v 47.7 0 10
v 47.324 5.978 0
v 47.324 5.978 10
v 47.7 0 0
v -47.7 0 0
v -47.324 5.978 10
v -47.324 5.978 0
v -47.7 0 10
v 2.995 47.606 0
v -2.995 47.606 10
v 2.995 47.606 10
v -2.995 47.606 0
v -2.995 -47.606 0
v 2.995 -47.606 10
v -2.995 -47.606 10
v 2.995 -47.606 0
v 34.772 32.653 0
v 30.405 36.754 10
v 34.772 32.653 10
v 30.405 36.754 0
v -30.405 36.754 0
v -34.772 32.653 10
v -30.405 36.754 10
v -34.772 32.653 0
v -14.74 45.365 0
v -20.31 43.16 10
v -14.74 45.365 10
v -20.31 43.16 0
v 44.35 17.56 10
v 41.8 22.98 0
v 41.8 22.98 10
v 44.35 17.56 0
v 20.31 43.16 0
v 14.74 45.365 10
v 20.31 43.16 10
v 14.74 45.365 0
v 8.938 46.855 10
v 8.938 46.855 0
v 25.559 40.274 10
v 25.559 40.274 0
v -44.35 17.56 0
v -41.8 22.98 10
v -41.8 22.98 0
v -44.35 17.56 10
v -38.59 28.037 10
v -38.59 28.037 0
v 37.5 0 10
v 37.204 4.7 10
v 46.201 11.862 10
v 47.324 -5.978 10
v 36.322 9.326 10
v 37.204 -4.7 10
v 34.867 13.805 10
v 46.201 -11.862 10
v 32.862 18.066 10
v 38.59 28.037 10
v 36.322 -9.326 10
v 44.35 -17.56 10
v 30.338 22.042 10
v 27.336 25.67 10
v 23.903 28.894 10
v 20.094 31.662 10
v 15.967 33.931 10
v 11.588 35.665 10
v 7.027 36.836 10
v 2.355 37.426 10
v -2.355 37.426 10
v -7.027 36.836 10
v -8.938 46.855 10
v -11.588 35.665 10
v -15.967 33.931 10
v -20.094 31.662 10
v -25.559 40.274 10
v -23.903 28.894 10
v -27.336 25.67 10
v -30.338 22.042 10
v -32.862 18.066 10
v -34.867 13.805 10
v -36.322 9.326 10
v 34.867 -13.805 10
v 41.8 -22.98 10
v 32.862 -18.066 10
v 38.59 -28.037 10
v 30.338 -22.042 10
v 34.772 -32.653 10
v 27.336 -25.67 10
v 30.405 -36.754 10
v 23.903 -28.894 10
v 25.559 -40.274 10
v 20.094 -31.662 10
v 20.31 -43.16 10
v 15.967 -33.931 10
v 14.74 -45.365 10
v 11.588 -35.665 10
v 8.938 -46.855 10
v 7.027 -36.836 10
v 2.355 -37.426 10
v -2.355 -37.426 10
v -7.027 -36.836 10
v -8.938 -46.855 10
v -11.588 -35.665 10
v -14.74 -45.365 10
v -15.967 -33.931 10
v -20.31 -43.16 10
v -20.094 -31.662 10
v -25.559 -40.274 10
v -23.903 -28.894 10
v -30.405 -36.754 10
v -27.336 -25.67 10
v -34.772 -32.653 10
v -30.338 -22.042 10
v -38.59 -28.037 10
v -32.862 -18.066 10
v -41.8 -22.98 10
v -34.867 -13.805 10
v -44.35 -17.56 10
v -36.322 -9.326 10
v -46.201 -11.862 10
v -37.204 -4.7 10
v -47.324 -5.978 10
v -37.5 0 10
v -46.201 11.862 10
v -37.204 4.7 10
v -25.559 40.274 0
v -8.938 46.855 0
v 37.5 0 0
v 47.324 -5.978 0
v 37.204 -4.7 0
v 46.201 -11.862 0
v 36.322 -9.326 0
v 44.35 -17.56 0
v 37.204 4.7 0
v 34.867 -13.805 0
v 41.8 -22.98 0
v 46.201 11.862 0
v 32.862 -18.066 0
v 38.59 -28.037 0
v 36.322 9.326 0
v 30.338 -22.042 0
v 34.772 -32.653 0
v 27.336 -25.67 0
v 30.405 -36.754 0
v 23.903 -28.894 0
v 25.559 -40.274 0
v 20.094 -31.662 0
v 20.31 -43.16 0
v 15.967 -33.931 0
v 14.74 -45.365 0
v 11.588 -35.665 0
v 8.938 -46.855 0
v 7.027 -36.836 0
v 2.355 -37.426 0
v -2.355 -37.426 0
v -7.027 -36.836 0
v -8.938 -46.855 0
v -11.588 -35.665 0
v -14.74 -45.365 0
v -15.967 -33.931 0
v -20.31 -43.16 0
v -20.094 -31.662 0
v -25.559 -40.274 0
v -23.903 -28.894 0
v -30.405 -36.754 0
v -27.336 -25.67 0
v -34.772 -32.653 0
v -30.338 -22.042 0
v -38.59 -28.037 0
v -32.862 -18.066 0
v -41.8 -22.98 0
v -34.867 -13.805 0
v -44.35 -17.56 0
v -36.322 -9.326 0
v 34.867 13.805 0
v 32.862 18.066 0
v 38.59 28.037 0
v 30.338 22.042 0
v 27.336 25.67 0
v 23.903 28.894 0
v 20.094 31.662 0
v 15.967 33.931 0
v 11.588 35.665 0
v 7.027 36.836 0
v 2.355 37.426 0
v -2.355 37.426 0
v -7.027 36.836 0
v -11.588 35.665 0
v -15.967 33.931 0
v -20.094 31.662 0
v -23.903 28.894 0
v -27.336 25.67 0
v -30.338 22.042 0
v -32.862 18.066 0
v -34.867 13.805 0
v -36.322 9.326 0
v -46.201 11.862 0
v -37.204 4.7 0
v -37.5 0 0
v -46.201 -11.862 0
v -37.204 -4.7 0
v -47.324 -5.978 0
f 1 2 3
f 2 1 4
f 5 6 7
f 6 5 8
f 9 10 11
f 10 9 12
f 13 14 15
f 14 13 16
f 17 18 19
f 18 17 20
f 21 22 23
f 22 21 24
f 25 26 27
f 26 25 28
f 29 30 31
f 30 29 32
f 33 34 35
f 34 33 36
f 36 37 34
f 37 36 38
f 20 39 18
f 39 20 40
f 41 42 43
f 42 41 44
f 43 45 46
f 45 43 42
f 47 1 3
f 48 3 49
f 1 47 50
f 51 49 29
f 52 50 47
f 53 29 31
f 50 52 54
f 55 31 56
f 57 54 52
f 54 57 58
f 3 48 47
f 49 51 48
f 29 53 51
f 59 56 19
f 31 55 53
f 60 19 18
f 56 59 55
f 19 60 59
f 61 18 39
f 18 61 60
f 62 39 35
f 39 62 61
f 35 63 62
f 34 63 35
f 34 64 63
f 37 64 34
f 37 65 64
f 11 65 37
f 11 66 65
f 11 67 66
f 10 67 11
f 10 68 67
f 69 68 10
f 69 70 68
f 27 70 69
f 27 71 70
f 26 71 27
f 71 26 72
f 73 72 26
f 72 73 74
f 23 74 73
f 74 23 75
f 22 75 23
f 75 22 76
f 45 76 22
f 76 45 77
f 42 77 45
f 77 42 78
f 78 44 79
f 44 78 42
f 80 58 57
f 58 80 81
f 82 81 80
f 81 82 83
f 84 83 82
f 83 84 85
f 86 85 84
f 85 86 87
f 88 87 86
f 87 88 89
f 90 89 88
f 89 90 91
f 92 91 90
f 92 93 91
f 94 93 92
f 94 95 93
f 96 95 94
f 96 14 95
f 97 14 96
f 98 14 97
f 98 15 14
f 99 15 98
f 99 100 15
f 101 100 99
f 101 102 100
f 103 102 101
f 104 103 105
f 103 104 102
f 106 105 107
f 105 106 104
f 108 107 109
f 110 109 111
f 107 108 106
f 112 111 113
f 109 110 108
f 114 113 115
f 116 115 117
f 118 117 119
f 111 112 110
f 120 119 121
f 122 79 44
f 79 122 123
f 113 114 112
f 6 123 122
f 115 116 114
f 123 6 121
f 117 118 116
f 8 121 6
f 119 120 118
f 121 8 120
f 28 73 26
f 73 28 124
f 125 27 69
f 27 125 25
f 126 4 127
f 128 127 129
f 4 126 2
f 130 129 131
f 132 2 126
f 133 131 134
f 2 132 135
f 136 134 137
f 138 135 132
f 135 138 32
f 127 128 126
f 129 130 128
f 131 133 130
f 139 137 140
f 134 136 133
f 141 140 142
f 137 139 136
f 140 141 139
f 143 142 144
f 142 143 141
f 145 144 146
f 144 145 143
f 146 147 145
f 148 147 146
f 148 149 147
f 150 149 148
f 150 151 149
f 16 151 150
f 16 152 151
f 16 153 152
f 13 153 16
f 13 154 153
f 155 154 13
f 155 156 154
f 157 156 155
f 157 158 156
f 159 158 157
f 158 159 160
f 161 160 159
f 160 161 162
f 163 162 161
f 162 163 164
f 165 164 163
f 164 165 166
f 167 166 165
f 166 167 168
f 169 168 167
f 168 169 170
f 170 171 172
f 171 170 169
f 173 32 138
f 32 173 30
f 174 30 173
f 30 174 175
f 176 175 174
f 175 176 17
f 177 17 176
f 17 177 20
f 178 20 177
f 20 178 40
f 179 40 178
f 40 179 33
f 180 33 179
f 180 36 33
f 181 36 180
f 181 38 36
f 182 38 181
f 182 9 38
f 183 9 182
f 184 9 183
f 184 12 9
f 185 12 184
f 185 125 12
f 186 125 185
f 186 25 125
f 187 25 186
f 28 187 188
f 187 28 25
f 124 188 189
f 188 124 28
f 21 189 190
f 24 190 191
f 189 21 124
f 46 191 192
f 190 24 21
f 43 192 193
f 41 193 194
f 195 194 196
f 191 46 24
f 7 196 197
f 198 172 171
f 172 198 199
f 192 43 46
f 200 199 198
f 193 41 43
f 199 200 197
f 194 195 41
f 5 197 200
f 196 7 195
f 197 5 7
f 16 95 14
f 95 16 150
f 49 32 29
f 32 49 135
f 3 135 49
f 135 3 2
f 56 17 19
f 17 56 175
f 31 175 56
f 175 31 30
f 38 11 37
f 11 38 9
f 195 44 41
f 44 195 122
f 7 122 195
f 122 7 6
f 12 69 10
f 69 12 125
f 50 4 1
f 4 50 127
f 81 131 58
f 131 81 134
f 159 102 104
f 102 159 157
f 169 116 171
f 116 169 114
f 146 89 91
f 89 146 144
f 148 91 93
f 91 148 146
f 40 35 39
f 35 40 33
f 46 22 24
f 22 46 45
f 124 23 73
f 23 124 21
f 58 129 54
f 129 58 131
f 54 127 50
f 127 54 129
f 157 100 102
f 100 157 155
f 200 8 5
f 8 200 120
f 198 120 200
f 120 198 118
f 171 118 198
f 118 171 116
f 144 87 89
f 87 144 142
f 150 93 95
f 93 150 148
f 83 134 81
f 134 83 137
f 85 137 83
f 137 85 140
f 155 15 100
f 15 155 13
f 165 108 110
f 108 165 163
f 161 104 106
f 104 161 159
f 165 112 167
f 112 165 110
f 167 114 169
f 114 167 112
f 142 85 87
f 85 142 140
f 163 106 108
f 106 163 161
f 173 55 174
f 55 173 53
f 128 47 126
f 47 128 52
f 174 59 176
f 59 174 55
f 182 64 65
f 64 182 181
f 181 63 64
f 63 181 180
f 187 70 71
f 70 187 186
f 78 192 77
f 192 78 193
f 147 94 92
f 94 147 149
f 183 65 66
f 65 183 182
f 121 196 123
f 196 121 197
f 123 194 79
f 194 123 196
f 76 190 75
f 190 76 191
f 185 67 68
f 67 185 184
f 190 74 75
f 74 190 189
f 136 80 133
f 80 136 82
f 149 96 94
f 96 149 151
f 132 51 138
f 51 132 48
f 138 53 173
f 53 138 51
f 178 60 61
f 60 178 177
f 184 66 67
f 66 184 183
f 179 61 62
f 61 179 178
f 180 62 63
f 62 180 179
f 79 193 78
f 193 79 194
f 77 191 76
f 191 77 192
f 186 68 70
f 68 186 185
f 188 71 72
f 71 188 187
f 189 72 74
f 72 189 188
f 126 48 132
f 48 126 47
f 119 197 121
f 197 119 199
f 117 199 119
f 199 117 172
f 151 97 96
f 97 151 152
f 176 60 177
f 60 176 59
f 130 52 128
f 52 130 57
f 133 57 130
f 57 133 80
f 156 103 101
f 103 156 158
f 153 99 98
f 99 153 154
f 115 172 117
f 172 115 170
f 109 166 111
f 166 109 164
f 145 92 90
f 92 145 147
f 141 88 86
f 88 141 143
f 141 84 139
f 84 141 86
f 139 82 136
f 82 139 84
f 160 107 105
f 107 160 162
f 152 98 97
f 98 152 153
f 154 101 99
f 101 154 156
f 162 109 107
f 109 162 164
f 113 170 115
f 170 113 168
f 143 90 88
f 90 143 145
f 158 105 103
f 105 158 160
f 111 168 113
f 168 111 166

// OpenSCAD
$fn = 50;


difference() {
	union() {
		translate(v = [0, 0, 0]) {
			rotate(a = [0, 0, 0]) {
				cylinder(h = 10, r = 47.7000000000);
			}
		}
	}
	union() {
		translate(v = [0, 0, 0]) {
			rotate(a = [0, 0, 0]) {
				cylinder(h = 10, r = 37.5000000000);
			}
		}
	}
}
